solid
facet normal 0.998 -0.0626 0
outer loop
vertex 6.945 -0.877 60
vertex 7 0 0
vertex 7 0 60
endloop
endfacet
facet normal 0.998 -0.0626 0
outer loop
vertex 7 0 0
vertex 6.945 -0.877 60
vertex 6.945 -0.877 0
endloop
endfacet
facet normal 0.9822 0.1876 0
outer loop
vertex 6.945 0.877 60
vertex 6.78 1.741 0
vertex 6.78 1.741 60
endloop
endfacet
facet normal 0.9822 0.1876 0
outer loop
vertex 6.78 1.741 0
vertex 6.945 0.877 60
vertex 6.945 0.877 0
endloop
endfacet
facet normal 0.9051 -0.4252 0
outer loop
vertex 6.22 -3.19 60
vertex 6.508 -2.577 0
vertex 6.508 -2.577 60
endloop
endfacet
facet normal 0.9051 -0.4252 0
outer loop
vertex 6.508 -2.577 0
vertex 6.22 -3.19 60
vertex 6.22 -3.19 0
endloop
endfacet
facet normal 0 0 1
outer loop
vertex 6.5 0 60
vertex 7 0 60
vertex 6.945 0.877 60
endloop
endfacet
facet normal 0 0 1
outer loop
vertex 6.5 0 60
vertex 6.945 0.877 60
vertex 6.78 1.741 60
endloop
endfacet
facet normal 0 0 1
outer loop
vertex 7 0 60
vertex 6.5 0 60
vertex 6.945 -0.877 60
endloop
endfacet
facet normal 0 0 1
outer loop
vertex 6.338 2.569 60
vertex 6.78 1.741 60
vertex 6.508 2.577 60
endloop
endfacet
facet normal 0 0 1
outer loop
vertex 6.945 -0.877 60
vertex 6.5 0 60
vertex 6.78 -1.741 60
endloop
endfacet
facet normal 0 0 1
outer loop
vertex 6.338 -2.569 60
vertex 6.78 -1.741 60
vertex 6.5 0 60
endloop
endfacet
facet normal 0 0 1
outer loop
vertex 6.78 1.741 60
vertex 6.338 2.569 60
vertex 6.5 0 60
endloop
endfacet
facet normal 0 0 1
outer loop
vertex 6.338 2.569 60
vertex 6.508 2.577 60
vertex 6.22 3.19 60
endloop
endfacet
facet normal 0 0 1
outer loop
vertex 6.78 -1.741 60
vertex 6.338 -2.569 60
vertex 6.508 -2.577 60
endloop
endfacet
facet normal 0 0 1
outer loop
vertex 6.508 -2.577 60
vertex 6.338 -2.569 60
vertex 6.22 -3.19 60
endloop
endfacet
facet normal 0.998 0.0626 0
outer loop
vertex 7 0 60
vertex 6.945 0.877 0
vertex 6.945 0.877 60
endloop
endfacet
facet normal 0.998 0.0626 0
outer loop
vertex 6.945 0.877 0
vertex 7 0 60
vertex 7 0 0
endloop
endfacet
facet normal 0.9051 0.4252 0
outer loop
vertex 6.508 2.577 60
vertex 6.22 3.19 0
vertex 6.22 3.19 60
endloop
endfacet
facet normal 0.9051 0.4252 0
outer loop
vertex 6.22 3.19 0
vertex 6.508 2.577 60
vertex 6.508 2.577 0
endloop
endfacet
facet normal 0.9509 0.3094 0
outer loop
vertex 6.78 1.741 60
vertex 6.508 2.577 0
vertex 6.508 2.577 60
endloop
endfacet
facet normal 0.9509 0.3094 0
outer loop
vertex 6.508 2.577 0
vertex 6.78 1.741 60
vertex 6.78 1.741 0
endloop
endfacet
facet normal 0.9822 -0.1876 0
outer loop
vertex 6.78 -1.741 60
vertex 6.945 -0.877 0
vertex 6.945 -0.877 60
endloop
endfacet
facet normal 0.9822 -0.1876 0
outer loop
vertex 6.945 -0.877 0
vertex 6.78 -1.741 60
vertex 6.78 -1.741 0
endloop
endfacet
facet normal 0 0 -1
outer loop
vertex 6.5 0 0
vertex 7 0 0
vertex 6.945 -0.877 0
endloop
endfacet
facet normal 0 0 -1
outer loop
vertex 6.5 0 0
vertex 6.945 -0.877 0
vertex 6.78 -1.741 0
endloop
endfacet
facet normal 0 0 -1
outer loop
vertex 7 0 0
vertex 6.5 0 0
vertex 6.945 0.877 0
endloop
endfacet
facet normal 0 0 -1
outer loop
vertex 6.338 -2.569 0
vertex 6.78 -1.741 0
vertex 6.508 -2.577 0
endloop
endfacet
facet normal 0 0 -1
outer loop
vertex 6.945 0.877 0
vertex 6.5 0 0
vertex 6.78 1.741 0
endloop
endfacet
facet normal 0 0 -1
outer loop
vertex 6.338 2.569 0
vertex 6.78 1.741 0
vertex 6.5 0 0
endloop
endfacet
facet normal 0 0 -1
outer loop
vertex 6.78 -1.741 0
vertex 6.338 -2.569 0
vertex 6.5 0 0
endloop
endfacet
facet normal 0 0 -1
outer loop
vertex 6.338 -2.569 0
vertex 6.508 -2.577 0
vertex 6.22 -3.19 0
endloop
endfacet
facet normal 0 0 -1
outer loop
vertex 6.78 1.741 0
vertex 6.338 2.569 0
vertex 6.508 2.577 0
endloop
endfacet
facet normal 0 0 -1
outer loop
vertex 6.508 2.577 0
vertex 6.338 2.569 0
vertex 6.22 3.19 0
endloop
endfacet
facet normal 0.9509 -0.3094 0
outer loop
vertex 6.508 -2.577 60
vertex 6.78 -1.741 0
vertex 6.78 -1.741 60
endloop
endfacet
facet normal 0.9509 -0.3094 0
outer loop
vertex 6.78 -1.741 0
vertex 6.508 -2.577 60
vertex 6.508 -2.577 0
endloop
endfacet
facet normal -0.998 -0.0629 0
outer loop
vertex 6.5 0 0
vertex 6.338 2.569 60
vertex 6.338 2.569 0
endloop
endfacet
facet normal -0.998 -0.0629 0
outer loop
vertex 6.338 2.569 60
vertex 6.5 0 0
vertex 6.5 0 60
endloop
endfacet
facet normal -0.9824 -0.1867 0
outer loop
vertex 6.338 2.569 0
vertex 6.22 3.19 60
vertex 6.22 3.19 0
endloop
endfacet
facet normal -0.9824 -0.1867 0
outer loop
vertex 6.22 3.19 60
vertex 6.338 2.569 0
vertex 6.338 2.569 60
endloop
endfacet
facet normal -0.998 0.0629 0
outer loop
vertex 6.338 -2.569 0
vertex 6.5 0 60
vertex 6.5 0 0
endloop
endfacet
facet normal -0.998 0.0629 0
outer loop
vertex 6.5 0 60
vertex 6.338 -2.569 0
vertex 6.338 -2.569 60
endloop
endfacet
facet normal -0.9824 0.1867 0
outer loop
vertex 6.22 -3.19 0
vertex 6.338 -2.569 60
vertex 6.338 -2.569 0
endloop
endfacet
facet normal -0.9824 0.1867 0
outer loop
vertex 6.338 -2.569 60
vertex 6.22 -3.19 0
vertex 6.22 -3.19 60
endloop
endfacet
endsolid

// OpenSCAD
$fn = 50;


difference() {
	union() {
		cylinder(h = 60, r = 7.0000000000);
		translate(v = [-17.0000000000, 0, 0]) {
			cylinder(h = 60, r = 7.0000000000);
		}
	}
	union() {
		cylinder(h = 60, r = 3.2500000000);
		cylinder(h = 60, r = 1.8000000000);
		cylinder(h = 60, r = 1.8000000000);
		cylinder(h = 60, r = 1.8000000000);
		translate(v = [-21.5000000000, 0, 0]) {
			hull() {
				translate(v = [-3.7500000000, 0.0000000000, 0]) {
					cylinder(h = 60, r = 10.5000000000);
				}
				translate(v = [3.7500000000, 0.0000000000, 0]) {
					cylinder(h = 60, r = 10.5000000000);
				}
				translate(v = [-3.7500000000, -0.0000000000, 0]) {
					cylinder(h = 60, r = 10.5000000000);
				}
				translate(v = [3.7500000000, -0.0000000000, 0]) {
					cylinder(h = 60, r = 10.5000000000);
				}
			}
		}
		translate(v = [-14.0000000000, 0, 0.0000000000]) {
			cylinder(h = 60, r = 20.5000000000);
		}
	}
}
